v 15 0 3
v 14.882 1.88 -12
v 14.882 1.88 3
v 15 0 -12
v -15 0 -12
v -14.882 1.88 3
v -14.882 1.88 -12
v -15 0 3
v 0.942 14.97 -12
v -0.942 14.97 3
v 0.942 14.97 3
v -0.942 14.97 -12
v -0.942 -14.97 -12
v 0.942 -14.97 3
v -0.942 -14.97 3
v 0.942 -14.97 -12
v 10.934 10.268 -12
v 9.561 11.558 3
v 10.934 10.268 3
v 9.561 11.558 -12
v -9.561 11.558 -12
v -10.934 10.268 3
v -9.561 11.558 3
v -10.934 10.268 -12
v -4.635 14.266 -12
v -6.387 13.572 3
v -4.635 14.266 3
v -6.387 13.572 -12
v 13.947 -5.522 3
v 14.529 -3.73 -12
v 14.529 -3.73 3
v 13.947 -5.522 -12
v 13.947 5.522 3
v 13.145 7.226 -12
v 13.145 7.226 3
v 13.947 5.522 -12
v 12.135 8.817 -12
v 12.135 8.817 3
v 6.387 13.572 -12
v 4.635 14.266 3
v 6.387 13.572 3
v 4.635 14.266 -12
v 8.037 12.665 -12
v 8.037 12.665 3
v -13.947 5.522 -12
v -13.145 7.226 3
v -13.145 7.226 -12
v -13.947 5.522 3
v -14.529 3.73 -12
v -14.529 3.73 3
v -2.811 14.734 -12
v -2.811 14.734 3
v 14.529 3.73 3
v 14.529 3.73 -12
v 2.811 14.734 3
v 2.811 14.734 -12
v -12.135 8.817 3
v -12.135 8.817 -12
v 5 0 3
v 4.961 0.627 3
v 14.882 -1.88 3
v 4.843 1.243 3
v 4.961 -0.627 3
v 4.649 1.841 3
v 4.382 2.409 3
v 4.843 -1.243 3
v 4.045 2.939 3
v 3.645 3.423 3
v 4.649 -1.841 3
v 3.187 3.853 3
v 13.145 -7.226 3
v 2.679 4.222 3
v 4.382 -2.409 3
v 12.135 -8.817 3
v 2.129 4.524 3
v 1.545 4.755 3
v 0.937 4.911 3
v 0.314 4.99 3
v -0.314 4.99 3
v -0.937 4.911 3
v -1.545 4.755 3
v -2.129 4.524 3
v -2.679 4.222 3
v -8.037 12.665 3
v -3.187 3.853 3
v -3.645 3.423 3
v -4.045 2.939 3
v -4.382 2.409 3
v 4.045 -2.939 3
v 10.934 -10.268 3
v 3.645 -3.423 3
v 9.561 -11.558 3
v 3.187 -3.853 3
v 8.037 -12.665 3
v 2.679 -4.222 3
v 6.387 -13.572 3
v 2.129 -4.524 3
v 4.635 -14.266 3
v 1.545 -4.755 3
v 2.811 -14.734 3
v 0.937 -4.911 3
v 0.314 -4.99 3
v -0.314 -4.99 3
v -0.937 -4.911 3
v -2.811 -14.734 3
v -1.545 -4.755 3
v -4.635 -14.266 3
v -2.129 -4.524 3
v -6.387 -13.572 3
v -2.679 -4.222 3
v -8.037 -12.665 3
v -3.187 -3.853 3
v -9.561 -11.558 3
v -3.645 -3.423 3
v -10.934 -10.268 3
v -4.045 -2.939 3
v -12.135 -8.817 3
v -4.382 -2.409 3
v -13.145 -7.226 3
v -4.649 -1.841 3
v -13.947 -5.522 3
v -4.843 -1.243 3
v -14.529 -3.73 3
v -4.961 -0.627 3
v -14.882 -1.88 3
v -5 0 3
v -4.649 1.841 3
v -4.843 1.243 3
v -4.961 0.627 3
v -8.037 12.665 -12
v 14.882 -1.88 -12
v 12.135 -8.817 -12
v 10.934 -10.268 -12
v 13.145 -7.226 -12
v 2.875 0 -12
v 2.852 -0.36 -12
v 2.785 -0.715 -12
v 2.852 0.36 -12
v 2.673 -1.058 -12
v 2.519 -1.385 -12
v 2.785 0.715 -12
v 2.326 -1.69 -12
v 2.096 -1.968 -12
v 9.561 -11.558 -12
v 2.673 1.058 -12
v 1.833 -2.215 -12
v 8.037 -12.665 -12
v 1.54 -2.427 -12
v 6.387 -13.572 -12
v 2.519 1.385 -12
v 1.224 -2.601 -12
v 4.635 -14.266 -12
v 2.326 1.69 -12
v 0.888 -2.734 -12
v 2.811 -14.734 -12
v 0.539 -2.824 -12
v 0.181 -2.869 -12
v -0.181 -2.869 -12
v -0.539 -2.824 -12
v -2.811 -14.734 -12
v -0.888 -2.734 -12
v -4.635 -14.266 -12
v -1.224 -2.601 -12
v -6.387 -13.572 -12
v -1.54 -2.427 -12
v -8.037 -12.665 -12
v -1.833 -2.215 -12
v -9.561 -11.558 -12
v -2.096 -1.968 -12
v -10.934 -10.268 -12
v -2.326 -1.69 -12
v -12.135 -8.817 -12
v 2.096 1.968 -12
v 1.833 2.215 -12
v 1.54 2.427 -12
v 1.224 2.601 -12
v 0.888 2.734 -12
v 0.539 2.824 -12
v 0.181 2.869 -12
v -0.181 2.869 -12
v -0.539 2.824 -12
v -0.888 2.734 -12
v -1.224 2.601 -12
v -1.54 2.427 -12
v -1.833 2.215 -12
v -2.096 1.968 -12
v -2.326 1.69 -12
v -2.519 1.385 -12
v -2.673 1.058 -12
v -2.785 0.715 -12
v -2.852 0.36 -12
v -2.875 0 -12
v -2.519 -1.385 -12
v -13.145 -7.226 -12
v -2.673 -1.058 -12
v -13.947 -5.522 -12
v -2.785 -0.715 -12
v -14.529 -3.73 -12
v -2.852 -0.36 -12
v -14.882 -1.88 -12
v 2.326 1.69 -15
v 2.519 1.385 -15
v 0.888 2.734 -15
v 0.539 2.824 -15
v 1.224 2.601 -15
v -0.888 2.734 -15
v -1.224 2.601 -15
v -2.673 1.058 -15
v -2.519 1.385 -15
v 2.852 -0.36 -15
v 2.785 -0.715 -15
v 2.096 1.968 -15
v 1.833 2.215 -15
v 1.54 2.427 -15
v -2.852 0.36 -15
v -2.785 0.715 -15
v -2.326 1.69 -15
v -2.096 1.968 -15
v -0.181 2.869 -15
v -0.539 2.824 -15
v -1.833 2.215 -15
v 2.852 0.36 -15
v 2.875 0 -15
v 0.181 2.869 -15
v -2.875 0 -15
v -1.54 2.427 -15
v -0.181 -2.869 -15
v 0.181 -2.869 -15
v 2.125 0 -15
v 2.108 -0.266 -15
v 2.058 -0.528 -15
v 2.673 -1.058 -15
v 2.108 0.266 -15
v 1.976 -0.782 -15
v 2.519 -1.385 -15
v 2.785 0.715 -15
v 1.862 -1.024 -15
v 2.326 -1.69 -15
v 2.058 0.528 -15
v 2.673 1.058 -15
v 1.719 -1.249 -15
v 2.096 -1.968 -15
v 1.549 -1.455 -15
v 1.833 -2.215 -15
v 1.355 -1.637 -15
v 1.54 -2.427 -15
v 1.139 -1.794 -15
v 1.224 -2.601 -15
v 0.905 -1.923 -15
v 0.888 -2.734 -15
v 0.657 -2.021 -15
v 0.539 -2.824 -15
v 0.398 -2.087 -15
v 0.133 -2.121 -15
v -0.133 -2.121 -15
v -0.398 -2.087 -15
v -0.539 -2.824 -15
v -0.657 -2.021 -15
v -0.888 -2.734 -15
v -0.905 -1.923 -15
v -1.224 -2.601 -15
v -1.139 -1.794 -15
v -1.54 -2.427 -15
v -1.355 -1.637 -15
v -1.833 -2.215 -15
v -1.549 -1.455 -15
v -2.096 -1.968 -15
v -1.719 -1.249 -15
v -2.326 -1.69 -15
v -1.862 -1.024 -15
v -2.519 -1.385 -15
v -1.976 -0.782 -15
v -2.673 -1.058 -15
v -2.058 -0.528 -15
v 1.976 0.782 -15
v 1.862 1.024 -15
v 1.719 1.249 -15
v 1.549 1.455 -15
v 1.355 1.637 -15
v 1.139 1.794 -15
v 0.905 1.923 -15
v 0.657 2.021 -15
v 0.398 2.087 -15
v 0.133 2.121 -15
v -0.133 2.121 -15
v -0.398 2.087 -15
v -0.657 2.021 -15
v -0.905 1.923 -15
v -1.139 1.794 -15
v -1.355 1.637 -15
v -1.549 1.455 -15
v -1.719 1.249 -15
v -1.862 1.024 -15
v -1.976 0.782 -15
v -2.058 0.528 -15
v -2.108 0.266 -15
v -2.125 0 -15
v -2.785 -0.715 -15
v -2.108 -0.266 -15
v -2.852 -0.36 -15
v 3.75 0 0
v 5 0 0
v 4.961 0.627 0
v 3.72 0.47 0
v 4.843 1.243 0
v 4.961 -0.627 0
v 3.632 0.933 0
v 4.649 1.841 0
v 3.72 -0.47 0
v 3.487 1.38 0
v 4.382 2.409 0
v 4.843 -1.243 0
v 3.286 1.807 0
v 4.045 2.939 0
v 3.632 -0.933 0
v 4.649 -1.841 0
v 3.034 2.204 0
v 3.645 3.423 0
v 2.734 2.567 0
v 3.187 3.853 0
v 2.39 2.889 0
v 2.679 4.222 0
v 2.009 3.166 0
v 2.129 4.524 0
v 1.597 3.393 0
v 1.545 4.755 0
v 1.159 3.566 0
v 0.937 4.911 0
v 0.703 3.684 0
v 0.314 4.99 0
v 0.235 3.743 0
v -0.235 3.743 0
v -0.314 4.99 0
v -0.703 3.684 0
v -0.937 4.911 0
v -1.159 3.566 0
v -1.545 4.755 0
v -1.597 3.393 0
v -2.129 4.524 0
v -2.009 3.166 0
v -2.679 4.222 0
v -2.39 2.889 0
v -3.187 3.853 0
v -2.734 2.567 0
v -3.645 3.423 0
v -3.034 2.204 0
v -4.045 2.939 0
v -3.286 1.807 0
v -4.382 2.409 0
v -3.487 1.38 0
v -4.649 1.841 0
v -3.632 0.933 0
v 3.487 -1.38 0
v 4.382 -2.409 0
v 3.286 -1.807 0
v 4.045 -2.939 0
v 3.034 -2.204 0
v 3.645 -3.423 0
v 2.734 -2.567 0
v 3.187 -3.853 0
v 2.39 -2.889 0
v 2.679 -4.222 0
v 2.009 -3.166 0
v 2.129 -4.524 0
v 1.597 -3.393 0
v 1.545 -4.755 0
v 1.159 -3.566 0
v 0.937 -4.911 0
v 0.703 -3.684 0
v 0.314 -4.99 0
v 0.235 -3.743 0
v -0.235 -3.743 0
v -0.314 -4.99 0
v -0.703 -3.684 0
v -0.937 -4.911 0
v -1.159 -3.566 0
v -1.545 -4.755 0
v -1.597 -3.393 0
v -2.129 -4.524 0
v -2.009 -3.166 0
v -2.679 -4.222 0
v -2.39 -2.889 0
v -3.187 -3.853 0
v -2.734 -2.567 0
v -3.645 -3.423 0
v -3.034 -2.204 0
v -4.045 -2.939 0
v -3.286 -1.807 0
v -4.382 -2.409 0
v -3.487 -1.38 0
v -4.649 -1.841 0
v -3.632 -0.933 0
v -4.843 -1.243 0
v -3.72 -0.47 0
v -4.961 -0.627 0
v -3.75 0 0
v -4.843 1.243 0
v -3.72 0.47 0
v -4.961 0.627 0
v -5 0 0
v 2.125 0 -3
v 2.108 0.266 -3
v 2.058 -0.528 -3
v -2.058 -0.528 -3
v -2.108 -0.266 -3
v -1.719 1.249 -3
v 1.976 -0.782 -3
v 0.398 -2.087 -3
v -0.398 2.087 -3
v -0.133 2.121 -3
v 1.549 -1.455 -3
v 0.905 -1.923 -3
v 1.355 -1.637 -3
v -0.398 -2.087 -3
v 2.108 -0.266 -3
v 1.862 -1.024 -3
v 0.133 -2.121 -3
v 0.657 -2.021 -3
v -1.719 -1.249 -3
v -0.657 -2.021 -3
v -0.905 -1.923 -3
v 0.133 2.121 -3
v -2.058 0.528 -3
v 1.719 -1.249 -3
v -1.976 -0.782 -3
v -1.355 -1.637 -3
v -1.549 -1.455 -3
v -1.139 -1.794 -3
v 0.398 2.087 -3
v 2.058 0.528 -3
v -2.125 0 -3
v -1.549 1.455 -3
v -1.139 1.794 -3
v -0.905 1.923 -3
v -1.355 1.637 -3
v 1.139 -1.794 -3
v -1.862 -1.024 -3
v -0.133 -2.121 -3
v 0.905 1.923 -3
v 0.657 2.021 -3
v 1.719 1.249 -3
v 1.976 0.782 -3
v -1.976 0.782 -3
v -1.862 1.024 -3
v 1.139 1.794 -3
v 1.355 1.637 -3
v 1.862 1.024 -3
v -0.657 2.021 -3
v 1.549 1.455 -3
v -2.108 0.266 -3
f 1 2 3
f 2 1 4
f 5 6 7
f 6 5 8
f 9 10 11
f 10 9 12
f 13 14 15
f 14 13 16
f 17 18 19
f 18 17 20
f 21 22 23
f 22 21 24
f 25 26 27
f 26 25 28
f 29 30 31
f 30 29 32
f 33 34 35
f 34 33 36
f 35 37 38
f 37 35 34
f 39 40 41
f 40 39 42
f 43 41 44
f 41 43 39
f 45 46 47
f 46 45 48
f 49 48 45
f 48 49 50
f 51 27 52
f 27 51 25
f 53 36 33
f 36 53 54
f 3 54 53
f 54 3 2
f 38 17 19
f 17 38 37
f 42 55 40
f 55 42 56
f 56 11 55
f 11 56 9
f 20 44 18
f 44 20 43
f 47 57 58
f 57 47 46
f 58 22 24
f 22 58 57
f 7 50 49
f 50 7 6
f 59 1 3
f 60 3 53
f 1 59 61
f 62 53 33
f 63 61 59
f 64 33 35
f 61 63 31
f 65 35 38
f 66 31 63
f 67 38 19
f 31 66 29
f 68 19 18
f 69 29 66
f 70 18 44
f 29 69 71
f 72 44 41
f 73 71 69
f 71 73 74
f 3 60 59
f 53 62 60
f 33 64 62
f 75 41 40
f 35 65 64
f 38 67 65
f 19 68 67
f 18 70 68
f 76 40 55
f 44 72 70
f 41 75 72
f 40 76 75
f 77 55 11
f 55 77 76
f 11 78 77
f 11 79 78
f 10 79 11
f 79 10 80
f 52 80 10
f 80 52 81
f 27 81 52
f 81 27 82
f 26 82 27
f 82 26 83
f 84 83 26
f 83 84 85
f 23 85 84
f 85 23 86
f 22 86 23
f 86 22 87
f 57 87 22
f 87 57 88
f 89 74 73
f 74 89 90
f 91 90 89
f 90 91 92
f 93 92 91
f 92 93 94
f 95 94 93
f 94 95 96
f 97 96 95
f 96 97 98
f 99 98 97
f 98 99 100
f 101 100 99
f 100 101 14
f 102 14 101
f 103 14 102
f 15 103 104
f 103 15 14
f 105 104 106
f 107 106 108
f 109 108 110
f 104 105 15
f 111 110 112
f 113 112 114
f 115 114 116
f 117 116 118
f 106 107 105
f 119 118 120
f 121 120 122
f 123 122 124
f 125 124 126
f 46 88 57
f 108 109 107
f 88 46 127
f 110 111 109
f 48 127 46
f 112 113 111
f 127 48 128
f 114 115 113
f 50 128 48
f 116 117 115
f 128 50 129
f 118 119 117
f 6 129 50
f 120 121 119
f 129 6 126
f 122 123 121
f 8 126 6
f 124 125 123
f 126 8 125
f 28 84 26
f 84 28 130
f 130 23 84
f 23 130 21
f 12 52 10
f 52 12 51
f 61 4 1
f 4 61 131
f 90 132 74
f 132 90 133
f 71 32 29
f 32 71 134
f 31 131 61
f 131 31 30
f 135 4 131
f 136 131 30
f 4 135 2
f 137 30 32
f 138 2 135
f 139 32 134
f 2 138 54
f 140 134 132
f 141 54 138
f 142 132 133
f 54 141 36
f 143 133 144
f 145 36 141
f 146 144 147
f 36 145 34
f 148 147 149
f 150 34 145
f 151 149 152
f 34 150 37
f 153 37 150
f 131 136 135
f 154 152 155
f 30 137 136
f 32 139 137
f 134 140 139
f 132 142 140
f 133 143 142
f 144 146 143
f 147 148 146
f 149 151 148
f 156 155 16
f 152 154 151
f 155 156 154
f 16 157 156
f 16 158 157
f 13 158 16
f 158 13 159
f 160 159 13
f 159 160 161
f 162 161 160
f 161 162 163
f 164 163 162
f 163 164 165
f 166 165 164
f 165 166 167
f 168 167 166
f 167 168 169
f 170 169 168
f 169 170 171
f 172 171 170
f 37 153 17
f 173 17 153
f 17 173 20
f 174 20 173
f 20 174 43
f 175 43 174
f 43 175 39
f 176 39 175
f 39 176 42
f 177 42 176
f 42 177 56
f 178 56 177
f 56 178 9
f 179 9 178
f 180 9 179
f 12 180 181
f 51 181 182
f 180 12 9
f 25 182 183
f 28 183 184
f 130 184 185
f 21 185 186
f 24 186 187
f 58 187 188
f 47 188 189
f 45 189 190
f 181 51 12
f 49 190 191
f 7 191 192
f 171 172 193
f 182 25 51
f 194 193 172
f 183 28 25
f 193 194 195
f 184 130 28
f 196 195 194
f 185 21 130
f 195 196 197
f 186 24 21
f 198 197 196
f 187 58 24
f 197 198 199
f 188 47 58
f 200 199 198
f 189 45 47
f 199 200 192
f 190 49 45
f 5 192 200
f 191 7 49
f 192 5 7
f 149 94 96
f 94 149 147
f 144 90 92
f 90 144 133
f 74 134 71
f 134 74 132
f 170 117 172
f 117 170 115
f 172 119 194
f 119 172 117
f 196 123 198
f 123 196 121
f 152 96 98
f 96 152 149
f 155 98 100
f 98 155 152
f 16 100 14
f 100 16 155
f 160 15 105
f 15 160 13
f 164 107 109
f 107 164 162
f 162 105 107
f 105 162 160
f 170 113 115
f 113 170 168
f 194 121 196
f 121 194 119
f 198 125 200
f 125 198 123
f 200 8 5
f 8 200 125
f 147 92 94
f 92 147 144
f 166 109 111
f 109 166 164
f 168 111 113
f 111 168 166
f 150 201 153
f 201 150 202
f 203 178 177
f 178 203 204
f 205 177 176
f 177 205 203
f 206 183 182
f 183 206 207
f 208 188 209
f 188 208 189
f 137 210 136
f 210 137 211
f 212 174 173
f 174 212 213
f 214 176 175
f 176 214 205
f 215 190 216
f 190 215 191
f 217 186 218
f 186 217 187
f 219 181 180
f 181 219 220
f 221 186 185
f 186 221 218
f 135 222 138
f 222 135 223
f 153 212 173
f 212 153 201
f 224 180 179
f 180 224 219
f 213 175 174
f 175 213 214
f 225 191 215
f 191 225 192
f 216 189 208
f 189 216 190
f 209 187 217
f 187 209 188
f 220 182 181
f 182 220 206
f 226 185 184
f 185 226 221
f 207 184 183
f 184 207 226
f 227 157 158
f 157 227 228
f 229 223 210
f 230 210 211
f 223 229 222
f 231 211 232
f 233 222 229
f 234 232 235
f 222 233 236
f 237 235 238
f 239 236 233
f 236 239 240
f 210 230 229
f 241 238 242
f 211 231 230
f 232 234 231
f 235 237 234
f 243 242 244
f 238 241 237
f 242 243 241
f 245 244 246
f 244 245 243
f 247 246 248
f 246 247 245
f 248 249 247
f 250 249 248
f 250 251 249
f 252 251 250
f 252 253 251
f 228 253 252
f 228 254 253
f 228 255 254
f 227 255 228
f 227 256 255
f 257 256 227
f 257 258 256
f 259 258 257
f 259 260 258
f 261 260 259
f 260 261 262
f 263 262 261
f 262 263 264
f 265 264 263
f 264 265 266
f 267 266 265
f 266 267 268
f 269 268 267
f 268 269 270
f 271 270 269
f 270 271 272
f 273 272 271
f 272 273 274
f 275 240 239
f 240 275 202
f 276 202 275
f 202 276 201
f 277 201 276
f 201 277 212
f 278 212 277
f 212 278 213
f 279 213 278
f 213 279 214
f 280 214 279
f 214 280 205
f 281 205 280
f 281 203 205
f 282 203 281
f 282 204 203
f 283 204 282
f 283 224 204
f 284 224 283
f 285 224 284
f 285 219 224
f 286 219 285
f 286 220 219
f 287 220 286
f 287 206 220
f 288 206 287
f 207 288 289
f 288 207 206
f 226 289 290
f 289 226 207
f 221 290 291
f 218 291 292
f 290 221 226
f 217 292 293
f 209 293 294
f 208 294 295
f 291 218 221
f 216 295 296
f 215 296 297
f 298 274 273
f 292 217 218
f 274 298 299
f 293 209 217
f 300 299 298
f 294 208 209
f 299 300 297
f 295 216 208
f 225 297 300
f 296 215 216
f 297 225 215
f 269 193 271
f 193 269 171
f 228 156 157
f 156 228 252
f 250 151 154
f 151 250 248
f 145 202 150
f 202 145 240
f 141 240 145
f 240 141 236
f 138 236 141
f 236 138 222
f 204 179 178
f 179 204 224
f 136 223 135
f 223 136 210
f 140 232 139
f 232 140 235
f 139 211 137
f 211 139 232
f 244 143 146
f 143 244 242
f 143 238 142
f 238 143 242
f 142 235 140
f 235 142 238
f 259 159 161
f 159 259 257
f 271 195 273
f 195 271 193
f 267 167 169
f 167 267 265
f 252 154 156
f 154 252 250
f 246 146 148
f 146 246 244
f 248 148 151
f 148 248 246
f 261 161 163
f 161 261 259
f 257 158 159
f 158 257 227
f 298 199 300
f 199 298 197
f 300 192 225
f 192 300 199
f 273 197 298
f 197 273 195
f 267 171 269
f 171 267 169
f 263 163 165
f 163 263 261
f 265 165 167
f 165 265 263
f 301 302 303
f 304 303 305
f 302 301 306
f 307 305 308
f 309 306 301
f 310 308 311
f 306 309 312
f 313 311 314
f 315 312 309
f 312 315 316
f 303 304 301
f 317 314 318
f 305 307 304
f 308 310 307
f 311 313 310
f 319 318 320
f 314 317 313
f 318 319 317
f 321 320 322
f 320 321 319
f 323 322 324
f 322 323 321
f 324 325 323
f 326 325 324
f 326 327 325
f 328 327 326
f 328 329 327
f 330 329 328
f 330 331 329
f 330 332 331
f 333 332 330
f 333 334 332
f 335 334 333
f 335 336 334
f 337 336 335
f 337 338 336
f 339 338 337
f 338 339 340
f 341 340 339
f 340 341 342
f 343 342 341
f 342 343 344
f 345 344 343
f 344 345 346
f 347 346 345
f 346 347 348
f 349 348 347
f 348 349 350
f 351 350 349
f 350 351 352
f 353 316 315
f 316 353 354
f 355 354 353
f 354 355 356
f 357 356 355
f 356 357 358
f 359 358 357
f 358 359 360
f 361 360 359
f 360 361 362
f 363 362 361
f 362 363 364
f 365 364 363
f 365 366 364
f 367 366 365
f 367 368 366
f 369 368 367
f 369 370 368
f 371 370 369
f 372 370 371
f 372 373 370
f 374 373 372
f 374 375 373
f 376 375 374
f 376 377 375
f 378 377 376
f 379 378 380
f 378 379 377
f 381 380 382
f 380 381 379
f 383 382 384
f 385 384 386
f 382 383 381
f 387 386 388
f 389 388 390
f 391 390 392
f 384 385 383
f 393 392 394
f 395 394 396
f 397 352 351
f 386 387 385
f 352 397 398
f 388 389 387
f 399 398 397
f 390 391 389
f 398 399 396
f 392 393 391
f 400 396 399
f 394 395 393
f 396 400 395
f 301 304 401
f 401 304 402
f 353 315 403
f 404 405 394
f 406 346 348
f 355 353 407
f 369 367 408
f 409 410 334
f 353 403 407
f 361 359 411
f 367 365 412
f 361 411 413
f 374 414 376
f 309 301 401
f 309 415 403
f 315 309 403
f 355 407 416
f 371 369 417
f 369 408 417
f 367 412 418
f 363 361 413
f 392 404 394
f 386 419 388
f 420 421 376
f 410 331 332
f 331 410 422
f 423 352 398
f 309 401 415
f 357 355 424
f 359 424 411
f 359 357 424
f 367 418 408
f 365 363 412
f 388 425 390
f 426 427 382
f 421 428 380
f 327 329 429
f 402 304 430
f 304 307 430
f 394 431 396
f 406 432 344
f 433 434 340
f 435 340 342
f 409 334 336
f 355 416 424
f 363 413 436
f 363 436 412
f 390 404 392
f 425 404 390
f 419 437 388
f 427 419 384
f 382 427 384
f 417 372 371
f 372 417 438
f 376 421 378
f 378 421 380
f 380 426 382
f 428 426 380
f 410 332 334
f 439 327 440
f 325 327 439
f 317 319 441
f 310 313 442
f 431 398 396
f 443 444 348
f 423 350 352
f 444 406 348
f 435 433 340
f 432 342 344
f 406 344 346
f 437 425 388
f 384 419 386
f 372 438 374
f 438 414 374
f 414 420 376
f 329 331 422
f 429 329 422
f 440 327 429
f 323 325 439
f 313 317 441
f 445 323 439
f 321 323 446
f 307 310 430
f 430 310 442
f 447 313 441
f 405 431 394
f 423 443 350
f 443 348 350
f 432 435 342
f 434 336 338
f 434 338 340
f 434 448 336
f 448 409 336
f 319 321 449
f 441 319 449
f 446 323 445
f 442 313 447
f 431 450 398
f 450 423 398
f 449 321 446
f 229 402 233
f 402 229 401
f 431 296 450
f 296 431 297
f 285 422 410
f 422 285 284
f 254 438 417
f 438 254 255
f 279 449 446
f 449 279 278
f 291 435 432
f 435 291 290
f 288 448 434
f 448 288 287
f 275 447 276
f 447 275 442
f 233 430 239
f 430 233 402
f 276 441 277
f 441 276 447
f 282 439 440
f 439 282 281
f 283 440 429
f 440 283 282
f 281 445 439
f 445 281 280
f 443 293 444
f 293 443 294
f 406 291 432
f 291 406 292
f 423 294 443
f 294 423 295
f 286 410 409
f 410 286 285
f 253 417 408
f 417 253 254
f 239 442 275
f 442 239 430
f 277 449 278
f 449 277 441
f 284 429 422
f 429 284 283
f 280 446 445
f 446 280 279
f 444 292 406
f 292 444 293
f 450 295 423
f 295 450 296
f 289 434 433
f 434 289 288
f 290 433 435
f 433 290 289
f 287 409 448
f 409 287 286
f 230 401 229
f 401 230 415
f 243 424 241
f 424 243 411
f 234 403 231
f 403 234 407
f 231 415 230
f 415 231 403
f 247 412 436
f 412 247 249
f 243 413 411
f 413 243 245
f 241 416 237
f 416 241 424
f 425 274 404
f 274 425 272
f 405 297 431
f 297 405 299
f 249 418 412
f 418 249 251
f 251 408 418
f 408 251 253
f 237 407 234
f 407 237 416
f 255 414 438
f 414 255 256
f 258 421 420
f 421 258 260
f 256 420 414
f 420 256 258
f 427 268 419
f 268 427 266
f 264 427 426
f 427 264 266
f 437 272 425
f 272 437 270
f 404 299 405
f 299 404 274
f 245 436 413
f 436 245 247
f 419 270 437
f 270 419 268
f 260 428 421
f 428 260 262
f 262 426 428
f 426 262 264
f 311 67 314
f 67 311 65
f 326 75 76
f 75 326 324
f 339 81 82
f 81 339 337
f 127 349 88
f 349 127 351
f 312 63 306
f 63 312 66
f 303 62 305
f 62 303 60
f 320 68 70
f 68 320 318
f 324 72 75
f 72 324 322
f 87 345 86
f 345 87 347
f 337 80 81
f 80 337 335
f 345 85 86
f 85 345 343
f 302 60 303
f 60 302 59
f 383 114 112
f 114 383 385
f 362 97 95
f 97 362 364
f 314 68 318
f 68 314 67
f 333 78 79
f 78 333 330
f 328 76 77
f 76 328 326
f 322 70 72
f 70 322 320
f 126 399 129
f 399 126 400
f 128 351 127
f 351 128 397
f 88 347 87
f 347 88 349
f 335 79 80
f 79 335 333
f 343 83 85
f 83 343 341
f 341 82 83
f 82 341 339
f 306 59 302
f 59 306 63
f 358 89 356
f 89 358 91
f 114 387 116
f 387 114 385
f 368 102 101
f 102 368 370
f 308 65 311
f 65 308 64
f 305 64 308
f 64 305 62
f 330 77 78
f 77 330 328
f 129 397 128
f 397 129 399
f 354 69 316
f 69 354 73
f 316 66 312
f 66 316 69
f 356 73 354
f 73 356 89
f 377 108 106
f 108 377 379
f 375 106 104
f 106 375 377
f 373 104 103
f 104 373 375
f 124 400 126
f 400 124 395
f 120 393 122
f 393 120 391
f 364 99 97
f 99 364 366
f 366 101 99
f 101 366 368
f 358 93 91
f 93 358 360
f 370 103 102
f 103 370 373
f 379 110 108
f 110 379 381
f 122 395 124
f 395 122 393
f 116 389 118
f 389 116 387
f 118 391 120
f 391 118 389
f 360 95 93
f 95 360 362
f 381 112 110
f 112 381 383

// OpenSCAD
$fn = 50;


difference() {
	union() {
		translate(v = [0, 0, -12.0000000000]) {
			cylinder(h = 15, r = 15.0000000000);
		}
		#translate(v = [0, 0, -15.0000000000]) {
			cylinder(h = 15, r = 2.8750000000);
		}
	}
	union() {
		translate(v = [0, 0, 0]) {
			rotate(a = [0, 0, 0]) {
				difference() {
					union() {
						translate(v = [0, 0, -15.0000000000]) {
							cylinder(h = 15, r = 2.0000000000);
						}
						translate(v = [0, 0, -3]) {
							cylinder(h = 3, r1 = 2.1250000000, r2 = 3.7500000000);
						}
						translate(v = [0, 0, -15.0000000000]) {
							cylinder(h = 15, r = 2.1250000000);
						}
						translate(v = [0, 0, -15.0000000000]) {
							cylinder(h = 15, r = 2.0000000000);
						}
					}
					union();
				}
			}
		}
		#cylinder(h = 3, r = 5.0000000000);
	}
}
